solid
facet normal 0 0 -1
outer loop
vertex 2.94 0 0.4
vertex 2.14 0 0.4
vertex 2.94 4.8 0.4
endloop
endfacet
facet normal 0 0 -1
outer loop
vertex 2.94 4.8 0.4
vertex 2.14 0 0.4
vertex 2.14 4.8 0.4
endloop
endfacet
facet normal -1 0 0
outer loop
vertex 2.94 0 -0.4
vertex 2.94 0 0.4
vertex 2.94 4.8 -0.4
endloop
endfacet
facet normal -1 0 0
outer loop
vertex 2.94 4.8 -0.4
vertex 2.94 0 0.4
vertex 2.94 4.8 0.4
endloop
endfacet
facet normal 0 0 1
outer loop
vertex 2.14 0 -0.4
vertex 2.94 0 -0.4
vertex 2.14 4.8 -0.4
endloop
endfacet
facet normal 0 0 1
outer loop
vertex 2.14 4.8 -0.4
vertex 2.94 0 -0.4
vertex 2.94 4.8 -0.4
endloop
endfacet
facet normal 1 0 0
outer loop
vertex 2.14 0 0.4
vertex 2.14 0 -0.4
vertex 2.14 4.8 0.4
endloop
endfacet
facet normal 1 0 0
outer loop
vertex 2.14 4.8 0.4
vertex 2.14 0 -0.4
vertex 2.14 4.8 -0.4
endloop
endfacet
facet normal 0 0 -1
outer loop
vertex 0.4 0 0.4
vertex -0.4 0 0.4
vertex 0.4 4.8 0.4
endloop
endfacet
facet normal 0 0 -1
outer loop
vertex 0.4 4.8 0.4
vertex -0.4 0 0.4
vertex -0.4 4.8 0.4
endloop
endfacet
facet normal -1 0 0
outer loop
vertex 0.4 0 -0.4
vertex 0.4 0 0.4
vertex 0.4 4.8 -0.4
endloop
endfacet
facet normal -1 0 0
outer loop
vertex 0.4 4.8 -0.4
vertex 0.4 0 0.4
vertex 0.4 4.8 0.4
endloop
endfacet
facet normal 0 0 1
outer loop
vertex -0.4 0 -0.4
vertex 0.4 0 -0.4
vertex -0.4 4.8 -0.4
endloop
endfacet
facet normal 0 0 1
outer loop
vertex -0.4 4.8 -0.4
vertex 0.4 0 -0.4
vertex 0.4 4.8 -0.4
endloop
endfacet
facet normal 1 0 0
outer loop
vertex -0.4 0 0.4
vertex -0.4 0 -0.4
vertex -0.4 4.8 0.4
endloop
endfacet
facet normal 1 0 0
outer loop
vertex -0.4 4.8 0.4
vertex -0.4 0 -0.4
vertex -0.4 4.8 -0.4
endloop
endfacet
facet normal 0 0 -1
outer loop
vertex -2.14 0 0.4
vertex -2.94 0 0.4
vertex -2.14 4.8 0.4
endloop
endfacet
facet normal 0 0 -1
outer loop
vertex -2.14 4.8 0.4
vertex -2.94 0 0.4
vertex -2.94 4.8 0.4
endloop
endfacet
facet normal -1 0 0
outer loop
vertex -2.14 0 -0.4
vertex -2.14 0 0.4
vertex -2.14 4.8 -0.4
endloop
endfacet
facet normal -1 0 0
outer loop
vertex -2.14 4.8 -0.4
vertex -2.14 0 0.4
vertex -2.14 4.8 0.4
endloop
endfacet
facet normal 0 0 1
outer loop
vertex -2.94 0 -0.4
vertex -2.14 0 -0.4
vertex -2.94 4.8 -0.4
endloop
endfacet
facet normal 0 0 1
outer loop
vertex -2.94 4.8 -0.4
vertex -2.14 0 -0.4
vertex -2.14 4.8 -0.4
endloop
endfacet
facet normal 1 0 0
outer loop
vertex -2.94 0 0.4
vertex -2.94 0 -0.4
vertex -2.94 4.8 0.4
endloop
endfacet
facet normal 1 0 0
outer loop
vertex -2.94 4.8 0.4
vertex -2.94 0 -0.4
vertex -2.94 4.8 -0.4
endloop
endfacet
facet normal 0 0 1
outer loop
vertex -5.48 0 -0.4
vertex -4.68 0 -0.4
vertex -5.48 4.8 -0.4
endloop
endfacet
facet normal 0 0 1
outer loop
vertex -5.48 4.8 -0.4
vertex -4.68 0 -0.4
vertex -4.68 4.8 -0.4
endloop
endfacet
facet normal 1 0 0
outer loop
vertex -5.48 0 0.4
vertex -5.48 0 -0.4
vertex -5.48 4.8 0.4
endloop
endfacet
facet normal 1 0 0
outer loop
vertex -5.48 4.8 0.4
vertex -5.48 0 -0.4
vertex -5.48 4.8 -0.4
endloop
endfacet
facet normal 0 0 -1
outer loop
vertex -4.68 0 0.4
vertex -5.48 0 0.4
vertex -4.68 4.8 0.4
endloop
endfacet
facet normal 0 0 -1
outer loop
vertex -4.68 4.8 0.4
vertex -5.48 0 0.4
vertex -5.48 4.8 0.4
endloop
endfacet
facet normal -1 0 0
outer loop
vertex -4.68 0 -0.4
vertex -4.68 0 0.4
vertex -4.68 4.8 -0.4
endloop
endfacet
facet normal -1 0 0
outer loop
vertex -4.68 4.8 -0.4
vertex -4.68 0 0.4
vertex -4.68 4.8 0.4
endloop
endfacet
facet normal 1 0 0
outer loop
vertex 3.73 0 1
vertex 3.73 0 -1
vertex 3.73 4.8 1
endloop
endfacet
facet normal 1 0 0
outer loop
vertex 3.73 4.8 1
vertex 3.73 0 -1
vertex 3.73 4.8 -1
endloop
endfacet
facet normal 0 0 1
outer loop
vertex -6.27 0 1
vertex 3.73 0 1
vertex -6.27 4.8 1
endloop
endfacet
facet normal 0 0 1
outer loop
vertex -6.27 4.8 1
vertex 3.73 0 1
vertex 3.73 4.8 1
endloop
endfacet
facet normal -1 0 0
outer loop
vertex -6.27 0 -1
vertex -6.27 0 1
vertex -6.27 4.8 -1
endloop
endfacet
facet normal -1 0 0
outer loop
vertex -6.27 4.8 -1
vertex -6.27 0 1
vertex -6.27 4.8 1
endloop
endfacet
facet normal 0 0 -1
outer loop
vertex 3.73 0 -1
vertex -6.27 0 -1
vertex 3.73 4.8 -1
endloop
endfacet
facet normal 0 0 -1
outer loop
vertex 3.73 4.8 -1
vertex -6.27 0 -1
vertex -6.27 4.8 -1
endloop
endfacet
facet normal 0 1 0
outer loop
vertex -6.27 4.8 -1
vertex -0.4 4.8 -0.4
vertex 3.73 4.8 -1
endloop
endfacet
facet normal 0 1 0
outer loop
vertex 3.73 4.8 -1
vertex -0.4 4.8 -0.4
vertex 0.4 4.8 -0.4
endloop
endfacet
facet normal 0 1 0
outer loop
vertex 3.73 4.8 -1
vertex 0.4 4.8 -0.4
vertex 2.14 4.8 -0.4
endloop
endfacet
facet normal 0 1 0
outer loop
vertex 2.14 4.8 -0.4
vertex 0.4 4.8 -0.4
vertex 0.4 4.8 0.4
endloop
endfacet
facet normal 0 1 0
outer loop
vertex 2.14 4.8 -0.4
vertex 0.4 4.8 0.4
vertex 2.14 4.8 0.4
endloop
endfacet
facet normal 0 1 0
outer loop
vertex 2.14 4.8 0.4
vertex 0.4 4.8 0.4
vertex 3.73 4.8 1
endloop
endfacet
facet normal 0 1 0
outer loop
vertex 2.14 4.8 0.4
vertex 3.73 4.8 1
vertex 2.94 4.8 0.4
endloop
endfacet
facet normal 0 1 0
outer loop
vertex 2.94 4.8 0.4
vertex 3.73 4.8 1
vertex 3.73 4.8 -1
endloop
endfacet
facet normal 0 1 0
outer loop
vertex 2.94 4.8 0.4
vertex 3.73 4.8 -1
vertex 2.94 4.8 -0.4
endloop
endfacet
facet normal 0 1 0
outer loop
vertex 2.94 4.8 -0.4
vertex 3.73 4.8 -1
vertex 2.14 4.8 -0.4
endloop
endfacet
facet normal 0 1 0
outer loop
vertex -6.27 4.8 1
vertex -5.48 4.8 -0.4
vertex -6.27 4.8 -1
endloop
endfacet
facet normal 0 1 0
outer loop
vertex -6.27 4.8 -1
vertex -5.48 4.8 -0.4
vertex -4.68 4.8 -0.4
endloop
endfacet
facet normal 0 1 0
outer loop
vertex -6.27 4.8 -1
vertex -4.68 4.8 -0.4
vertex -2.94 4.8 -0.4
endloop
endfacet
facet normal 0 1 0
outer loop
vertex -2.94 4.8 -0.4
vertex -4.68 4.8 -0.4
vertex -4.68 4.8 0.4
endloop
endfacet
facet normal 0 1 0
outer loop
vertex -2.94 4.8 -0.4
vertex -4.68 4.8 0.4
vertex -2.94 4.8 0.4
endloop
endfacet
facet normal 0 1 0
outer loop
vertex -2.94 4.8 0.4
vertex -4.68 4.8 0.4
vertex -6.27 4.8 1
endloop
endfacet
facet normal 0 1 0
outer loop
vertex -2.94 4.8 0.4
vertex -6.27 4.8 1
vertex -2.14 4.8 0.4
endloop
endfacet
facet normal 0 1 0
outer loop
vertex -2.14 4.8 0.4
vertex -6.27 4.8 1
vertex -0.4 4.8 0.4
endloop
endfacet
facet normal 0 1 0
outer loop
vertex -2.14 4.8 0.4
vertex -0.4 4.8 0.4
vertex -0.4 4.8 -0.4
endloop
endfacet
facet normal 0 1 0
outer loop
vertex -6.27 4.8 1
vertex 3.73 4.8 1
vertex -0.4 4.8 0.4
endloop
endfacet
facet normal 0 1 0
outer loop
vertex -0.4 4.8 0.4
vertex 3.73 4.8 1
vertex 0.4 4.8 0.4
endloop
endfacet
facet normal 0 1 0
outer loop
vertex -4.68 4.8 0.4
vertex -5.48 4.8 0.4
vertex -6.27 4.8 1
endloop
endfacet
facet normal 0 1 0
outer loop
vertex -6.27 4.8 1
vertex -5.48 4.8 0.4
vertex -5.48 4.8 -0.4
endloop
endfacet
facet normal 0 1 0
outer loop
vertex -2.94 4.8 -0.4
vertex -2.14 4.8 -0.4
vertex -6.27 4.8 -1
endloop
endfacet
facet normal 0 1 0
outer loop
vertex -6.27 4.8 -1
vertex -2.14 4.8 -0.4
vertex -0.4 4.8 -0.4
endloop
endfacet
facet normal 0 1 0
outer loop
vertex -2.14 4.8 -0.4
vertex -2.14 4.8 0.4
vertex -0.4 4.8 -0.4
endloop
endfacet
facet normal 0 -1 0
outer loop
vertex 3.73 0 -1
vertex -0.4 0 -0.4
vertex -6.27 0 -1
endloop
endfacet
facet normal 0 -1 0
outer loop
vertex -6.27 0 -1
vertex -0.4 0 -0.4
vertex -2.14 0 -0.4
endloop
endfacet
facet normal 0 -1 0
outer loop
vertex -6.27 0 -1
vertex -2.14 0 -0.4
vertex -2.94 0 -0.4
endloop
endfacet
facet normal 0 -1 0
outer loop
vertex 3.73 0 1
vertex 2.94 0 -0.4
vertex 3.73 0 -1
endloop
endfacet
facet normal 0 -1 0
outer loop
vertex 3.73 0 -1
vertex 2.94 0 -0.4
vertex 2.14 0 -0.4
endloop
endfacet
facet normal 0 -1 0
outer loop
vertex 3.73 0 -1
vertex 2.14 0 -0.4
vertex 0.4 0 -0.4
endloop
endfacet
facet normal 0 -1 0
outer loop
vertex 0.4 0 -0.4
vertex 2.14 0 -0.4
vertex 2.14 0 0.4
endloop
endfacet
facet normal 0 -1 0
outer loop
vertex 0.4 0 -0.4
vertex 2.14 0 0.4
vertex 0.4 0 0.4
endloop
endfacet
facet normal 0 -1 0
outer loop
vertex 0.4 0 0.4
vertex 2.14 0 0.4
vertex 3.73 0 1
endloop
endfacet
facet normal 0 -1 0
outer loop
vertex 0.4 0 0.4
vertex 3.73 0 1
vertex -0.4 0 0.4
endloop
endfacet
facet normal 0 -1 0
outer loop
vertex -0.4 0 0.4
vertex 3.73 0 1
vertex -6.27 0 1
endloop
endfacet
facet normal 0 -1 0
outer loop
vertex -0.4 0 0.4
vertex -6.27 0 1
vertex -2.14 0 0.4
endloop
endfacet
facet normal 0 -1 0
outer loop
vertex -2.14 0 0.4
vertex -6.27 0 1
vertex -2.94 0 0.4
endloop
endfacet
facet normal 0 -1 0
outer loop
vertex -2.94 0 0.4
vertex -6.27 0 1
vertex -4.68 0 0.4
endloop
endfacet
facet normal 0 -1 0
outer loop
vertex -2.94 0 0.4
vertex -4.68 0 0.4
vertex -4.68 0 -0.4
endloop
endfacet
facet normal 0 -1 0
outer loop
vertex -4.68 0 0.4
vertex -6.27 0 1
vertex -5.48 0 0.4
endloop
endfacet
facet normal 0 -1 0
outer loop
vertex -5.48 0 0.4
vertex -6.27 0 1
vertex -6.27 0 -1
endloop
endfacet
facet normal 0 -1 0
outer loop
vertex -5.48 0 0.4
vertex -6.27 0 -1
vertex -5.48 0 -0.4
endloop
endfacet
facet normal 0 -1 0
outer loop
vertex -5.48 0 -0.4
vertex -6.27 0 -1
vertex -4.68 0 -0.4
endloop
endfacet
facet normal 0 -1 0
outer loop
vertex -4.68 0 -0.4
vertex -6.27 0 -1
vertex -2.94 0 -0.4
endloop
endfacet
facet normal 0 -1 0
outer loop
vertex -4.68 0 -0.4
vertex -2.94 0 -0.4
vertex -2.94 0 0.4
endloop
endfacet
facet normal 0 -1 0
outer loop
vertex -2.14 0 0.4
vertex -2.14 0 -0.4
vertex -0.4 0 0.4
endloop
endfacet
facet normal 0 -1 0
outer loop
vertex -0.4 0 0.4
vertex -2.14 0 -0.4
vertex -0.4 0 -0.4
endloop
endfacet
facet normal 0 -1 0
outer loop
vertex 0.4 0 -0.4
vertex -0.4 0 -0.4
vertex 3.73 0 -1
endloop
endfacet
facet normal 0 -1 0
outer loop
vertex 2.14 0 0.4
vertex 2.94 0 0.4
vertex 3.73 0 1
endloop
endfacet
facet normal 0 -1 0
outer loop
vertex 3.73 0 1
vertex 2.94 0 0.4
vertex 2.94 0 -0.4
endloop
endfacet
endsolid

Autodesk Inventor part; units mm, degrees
ref_plane "YZ Plane" through (0, 0, 0) normal (1, 0, 0) x (0, 1, 0)
ref_plane "XZ Plane" through (0, 0, 0) normal (0, 1, 0) x (-1, 0, 0)
ref_plane "XY Plane" through (0, 0, 0) normal (0, 0, 1) x (1, 0, 0)
sketch "スケッチ1" plane through (0, 0, 0) normal (0, 1, 0) x (-1, 0, 0)
  line L0 (0, 0) -> (5.08, 0)
  line L1 (5.08, 0) -> (2.54, 0)
  line L2 (2.54, 0) -> (0, 0)
  line L3 (0, 0) -> (-2.54, 0)
  line L4 (-2.54, 0) -> (-5.08, 0)
  circle A0 centre (-2.54, 0) radius 0.4
  circle A1 centre (0, 0) radius 0.4
  circle A2 centre (2.54, 0) radius 0.4
  circle A3 centre (5.08, 0) radius 0.4
  line L5 (0, 0) -> (1.27, 0)
  line L6 (-3.73, -1) -> (6.27, -1)
  line L7 (6.27, -1) -> (6.27, 1)
  line L8 (6.27, 1) -> (-3.73, 1)
  line L9 (-3.73, 1) -> (-3.73, -1)
  line L10 (-3.73, -1) -> (6.27, 1) construction
  line L11 (6.27, -1) -> (-3.73, 1) construction
  line L12 (4.68, -0.4) -> (5.48, -0.4)
  line L13 (5.48, -0.4) -> (5.48, 0.4)
  line L14 (5.48, 0.4) -> (4.68, 0.4)
  line L15 (4.68, 0.4) -> (4.68, -0.4)
  line L16 (4.68, -0.4) -> (5.48, 0.4) construction
  line L17 (5.48, -0.4) -> (4.68, 0.4) construction
  line L18 (2.14, -0.4) -> (2.94, -0.4)
  line L19 (2.94, -0.4) -> (2.94, 0.4)
  line L20 (2.94, 0.4) -> (2.14, 0.4)
  line L21 (2.14, 0.4) -> (2.14, -0.4)
  line L22 (2.14, -0.4) -> (2.94, 0.4) construction
  line L23 (2.94, -0.4) -> (2.14, 0.4) construction
  line L24 (-0.4, -0.4) -> (0.4, -0.4)
  line L25 (0.4, -0.4) -> (0.4, 0.4)
  line L26 (0.4, 0.4) -> (-0.4, 0.4)
  line L27 (-0.4, 0.4) -> (-0.4, -0.4)
  line L28 (-0.4, -0.4) -> (0.4, 0.4) construction
  line L29 (0.4, -0.4) -> (-0.4, 0.4) construction
  line L30 (-2.94, -0.4) -> (-2.14, -0.4)
  line L31 (-2.14, -0.4) -> (-2.14, 0.4)
  line L32 (-2.14, 0.4) -> (-2.94, 0.4)
  line L33 (-2.94, 0.4) -> (-2.94, -0.4)
  line L34 (-2.94, -0.4) -> (-2.14, 0.4) construction
  line L35 (-2.14, -0.4) -> (-2.94, 0.4) construction
  dimension "d0" = 5.08
  dimension "d1" = 2.54
  dimension "d2" = 2.54
  dimension "d3" = 2.54
  dimension "d4" = 0.8
  dimension "d5" = 0.8
  dimension "d6" = 0.8
  dimension "d7" = 0.8
  dimension "d8" = 1.27
  dimension "d9" = 10
  dimension "d10" = 2
extrude "押し出し1" add sketch "スケッチ1" along normal blind 4.8
properties part number "ikafly8_2.54"
